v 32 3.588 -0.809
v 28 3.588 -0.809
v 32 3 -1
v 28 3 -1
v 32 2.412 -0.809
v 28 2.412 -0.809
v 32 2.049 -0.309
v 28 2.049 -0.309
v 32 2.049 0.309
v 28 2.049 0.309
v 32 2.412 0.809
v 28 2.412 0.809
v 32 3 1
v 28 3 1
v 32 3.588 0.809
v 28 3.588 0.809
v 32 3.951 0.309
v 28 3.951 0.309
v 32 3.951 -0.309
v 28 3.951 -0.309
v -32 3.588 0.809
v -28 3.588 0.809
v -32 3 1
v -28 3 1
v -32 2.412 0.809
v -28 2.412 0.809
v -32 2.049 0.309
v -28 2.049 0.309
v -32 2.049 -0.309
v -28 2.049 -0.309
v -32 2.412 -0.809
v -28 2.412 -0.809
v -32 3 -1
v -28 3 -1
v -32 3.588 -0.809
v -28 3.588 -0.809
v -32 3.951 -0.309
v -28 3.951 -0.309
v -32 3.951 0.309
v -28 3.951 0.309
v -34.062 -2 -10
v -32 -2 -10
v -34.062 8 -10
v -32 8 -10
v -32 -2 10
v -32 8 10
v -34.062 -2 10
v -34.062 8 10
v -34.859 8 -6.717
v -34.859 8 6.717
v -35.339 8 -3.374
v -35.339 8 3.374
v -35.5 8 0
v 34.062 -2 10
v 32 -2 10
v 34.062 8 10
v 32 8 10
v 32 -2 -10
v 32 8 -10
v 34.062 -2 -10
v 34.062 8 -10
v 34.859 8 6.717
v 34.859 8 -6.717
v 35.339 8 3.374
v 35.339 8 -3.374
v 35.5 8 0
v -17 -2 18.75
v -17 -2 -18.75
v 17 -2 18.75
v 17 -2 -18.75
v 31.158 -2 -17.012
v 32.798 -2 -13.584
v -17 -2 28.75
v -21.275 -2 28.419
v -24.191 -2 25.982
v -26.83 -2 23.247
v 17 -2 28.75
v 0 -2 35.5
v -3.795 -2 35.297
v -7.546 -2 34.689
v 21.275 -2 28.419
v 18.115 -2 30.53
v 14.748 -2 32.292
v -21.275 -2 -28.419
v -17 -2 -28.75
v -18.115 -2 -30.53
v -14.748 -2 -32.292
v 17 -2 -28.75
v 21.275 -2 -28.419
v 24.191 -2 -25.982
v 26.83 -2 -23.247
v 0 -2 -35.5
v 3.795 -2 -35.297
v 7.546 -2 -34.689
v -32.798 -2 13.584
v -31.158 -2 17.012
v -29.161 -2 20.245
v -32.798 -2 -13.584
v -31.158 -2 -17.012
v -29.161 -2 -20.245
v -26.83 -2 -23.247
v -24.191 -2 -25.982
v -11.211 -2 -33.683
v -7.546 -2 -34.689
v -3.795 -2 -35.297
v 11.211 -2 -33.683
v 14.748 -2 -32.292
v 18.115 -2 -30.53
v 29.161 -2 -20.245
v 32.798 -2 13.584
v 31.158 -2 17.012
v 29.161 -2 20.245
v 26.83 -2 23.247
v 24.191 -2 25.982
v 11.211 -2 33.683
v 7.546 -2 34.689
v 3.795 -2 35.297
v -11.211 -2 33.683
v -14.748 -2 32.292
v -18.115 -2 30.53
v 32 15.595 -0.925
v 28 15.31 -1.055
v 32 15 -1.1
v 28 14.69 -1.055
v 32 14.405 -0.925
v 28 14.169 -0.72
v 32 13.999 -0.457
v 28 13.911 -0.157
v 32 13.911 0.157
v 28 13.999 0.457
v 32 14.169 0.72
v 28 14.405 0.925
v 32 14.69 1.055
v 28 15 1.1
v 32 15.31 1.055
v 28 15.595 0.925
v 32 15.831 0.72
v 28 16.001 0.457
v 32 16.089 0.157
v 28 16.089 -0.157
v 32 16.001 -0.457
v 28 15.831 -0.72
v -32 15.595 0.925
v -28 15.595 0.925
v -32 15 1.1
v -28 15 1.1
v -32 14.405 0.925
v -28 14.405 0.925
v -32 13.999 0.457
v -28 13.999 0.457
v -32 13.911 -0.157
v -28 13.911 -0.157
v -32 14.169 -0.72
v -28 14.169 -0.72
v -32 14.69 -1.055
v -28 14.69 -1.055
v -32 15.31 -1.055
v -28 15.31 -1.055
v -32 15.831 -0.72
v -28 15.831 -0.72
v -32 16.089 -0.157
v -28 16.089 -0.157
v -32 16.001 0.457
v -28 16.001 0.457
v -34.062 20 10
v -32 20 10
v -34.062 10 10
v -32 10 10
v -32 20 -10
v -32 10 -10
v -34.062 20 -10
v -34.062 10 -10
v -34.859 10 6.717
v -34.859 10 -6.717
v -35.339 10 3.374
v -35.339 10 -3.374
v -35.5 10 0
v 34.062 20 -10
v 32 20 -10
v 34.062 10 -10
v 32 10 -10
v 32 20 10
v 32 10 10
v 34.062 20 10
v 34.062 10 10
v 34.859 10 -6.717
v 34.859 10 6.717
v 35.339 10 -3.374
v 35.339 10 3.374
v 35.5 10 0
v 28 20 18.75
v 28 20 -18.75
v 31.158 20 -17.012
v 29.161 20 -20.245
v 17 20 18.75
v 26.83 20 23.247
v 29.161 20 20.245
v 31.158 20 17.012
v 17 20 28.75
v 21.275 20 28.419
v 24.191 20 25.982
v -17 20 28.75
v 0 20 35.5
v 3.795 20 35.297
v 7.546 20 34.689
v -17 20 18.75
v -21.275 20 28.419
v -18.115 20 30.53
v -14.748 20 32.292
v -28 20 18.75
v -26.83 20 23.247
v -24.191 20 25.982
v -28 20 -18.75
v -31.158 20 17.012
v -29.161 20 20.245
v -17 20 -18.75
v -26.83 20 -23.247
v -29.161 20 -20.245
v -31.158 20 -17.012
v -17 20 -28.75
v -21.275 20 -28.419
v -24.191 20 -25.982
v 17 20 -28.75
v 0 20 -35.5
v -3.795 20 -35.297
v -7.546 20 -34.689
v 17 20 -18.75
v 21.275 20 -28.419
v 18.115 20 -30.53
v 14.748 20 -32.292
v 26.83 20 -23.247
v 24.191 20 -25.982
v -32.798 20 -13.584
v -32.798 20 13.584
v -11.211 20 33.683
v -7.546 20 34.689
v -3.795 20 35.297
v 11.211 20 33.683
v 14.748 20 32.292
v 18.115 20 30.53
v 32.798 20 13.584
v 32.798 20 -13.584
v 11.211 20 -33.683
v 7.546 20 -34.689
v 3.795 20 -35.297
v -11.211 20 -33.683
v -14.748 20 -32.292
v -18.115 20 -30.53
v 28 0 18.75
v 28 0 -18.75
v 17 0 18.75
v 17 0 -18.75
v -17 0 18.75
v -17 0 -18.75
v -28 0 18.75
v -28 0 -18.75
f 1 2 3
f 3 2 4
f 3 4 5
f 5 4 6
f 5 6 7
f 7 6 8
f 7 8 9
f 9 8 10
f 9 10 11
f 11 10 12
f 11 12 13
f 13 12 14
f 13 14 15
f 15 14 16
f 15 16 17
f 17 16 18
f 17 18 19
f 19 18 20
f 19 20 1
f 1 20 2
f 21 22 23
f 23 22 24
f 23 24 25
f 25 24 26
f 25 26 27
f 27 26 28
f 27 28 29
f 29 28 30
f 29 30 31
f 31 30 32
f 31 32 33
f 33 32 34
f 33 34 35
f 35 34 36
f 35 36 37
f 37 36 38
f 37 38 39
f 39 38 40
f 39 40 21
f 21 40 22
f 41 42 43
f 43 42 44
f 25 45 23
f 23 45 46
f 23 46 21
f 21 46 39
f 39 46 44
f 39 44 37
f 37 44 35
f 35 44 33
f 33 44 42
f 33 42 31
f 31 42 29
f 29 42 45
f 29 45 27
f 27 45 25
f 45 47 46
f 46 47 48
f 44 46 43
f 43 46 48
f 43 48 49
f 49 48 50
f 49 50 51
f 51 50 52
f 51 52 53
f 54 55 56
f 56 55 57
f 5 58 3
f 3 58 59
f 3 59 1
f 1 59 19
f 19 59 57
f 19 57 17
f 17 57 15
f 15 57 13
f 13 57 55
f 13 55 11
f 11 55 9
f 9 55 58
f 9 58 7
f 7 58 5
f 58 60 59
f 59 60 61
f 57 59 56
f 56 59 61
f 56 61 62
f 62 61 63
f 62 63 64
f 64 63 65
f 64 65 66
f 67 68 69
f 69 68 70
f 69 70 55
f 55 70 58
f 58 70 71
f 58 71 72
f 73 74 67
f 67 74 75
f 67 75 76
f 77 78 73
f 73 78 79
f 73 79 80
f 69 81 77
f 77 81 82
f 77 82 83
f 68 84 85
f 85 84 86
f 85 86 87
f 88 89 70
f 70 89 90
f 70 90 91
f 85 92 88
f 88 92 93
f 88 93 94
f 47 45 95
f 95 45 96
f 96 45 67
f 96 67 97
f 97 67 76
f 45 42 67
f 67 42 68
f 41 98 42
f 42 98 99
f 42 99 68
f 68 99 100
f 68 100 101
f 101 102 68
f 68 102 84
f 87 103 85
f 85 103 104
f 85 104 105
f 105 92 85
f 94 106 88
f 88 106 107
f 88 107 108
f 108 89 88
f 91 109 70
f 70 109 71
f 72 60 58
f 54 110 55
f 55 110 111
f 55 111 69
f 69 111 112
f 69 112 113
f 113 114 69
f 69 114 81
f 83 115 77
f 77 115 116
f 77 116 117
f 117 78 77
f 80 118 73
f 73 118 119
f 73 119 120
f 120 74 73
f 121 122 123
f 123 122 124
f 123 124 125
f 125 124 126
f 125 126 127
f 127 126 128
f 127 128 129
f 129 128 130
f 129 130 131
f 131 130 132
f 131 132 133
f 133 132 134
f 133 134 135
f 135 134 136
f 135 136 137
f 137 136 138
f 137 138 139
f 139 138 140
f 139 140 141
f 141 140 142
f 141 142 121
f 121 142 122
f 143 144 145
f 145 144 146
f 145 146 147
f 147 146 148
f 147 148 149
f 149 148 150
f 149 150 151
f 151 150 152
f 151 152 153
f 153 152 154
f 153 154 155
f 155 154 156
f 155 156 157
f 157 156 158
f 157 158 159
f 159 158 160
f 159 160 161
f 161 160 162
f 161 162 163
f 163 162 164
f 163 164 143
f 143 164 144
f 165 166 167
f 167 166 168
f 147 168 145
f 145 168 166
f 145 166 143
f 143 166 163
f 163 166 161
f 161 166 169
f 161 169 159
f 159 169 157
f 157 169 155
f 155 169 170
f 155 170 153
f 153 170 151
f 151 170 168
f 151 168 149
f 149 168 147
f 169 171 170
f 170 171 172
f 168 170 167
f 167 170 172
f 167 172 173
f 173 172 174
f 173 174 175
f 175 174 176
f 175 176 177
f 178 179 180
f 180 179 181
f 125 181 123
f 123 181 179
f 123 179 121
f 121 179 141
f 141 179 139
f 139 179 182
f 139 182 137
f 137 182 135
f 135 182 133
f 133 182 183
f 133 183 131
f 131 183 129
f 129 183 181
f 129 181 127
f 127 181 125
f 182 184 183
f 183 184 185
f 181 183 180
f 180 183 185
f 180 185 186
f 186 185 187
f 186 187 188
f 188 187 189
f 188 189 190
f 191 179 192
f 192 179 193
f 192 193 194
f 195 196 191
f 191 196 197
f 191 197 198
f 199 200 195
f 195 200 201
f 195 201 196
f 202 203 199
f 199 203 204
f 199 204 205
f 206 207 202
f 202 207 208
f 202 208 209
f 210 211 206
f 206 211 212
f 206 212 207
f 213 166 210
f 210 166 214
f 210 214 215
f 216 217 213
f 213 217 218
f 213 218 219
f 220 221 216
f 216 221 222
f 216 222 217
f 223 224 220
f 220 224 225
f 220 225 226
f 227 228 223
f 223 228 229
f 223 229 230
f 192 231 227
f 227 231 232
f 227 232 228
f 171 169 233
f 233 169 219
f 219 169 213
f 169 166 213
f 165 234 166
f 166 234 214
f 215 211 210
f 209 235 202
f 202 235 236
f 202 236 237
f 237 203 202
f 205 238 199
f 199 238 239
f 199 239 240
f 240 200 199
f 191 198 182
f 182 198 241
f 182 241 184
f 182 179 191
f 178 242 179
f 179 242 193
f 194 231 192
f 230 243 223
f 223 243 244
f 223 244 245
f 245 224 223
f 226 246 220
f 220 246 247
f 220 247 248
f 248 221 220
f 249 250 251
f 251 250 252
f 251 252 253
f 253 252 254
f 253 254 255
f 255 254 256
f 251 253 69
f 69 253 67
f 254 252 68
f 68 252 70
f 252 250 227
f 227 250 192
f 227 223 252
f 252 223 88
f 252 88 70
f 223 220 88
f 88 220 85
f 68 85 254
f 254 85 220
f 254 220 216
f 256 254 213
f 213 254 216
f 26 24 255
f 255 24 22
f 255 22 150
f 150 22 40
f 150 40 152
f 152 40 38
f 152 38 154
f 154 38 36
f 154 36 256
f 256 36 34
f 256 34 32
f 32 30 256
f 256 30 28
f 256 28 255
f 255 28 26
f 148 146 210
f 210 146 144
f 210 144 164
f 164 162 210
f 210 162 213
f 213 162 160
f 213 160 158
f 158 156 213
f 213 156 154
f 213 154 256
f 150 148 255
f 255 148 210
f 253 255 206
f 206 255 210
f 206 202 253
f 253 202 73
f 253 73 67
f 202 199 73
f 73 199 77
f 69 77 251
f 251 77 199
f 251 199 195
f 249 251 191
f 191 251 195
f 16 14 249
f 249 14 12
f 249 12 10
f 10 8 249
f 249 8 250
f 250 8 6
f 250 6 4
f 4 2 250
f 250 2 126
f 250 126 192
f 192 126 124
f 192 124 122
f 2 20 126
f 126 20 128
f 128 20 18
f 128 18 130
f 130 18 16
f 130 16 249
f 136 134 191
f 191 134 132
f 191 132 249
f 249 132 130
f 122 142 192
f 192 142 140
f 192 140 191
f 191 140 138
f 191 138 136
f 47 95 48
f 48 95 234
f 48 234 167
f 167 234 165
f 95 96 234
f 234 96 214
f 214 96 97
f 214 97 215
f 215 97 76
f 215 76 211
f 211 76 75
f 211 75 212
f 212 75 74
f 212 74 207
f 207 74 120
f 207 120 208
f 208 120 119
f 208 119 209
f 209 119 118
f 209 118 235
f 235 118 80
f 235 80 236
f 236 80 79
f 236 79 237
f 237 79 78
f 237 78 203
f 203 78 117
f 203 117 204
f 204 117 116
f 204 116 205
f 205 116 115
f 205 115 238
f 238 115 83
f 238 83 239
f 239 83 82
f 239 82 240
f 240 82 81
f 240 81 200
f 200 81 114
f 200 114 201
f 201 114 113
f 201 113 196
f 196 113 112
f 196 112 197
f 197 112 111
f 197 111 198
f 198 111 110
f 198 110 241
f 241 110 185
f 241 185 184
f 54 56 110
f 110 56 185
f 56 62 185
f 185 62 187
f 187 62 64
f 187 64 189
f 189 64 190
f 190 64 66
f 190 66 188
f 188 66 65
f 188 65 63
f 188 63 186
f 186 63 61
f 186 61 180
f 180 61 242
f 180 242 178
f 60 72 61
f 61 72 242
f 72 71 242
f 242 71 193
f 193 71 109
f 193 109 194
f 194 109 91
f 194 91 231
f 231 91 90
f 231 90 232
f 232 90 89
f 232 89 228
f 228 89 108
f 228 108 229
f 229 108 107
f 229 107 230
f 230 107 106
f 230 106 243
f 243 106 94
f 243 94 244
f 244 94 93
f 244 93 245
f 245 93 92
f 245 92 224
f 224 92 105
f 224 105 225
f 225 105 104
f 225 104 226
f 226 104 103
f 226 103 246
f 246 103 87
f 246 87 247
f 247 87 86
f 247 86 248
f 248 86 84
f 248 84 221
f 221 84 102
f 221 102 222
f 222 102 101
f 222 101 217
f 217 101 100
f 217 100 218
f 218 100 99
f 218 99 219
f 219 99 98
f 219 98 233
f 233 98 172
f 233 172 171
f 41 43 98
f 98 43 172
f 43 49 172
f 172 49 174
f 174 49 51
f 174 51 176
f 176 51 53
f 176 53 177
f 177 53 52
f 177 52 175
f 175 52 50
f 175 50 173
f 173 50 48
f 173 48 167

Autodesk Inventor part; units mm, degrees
ref_plane "YZ Plane" through (0, 0, 0) normal (1, 0, 0) x (0, 1, 0)
ref_plane "XZ Plane" through (0, 0, 0) normal (0, 1, 0) x (-1, 0, 0)
ref_plane "XY Plane" through (0, 0, 0) normal (0, 0, 1) x (1, 0, 0)
sketch "Szkic1" plane through (0, 0, 0) normal (0, 1, 0) x (-1, 0, 0)
  circle A0 centre (0, 0) radius 35.5
  line L0 (0, 18.75) -> (0, -18.75) construction
  line L1 (-28, 0) -> (28, 0) construction
  line L2 (-28, -18.75) -> (28, -18.75)
  line L3 (-28, 18.75) -> (-28, -18.75)
  line L4 (28, 18.75) -> (28, -18.75)
  line L5 (0, 18.75) -> (28, 18.75)
  line L6 (0, 18.75) -> (-28, 18.75)
  line L7 (0, 18.75) -> (0, 28.75) construction
  line L8 (17, 28.75) -> (-17, 28.75)
  line L9 (17, 28.75) -> (17, 18.75)
  line L10 (-17, 28.75) -> (-17, 18.75)
  line L11 (0, -18.75) -> (0, -28.75) construction
  line L12 (-17, -28.75) -> (17, -28.75)
  line L13 (17, -28.75) -> (17, -18.75)
  line L14 (-17, -28.75) -> (-17, -18.75)
  dimension "d0" = 71
  dimension "d1" = 37.5
  dimension "d2" = 56
  dimension "d4" = 10
  dimension "d5" = 34
  dimension "d16" = 10
  dimension "d17" = 34
extrude "Wyciągnięcie proste1" add sketch "Szkic1" along normal blind 20
extrude "Wyciągnięcie proste2" add sketch "Szkic1" against normal blind 2 contours A0 | L3 L6 L5 L4 L2
sketch "Szkic2" plane through (0, 20, 0) normal (0, 1, 0) x (1, 0, 0)
  line L0 (32, 0) -> (-32, 0) construction
  circle A0 centre (0, 0) radius 35.5
  line L1 (-32, -10) -> (-32, 10)
  line L2 (32, -10) -> (32, 10)
  line L3 (32, -10) -> (34.0624, -10)
  line L4 (32, 10) -> (34.0624, 10)
  line L5 (-32, -10) -> (-34.0624, -10)
  line L6 (-32, 10) -> (-34.0624, 10)
  dimension "d10" = 64
  dimension "d11" = 71
  dimension "d12" = 20
  dimension "d13" = 20
extrude "Wyciągnięcie proste3" cut sketch "Szkic2" against normal blind 10 contours A0 L3 L2 L4 | L6 L1 L5 A0
sketch "Szkic3" plane through (32, 20, 10) normal (1, 0, 0) x (0, 0, -1)
  line L0 (0, 0) -> (10, 0) construction
  line L1 (10, 0) -> (10, -5) construction
  circle A0 centre (10, -5) radius 1.1
  point P0 (10, -20)
  dimension "d18" = 10
  dimension "d19" = 20
  dimension "d20" = 20
  dimension "d21" = 5
  dimension "d22" = 2.2
extrude "Wyciągnięcie proste4" cut sketch "Szkic3" against normal through all
sketch "Szkic7" plane through (0, -2, 0) normal (0, -1, 0) x (1, 0, 0)
  line L0 (32, 0) -> (-32, 0) construction
  circle A0 centre (0, 0) radius 35.5
  line L1 (-32, -10) -> (-32, 10)
  line L2 (32, -10) -> (32, 10)
  line L3 (32, -10) -> (34.0624, -10)
  line L4 (32, 10) -> (34.0624, 10)
  line L5 (-32, -10) -> (-34.0624, -10)
  line L6 (-32, 10) -> (-34.0624, 10)
  dimension "d48" = 64
  dimension "d49" = 71
  dimension "d50" = 20
  dimension "d51" = 20
extrude "Wyciągnięcie proste8" cut sketch "Szkic7" against normal blind 10 contours A0 L3 L2 L4 | L6 L1 L5 A0
sketch "Szkic8" plane through (32, -2, 10) normal (1, 0, 0) x (0, 0, -1)
  line L0 (10, 2) -> (10, 5) construction
  circle A0 centre (10, 5) radius 1
  dimension "d54" = 3
  dimension "d55" = 2
extrude "Wyciągnięcie proste9" cut sketch "Szkic8" against normal through all
properties part number "002-002"
